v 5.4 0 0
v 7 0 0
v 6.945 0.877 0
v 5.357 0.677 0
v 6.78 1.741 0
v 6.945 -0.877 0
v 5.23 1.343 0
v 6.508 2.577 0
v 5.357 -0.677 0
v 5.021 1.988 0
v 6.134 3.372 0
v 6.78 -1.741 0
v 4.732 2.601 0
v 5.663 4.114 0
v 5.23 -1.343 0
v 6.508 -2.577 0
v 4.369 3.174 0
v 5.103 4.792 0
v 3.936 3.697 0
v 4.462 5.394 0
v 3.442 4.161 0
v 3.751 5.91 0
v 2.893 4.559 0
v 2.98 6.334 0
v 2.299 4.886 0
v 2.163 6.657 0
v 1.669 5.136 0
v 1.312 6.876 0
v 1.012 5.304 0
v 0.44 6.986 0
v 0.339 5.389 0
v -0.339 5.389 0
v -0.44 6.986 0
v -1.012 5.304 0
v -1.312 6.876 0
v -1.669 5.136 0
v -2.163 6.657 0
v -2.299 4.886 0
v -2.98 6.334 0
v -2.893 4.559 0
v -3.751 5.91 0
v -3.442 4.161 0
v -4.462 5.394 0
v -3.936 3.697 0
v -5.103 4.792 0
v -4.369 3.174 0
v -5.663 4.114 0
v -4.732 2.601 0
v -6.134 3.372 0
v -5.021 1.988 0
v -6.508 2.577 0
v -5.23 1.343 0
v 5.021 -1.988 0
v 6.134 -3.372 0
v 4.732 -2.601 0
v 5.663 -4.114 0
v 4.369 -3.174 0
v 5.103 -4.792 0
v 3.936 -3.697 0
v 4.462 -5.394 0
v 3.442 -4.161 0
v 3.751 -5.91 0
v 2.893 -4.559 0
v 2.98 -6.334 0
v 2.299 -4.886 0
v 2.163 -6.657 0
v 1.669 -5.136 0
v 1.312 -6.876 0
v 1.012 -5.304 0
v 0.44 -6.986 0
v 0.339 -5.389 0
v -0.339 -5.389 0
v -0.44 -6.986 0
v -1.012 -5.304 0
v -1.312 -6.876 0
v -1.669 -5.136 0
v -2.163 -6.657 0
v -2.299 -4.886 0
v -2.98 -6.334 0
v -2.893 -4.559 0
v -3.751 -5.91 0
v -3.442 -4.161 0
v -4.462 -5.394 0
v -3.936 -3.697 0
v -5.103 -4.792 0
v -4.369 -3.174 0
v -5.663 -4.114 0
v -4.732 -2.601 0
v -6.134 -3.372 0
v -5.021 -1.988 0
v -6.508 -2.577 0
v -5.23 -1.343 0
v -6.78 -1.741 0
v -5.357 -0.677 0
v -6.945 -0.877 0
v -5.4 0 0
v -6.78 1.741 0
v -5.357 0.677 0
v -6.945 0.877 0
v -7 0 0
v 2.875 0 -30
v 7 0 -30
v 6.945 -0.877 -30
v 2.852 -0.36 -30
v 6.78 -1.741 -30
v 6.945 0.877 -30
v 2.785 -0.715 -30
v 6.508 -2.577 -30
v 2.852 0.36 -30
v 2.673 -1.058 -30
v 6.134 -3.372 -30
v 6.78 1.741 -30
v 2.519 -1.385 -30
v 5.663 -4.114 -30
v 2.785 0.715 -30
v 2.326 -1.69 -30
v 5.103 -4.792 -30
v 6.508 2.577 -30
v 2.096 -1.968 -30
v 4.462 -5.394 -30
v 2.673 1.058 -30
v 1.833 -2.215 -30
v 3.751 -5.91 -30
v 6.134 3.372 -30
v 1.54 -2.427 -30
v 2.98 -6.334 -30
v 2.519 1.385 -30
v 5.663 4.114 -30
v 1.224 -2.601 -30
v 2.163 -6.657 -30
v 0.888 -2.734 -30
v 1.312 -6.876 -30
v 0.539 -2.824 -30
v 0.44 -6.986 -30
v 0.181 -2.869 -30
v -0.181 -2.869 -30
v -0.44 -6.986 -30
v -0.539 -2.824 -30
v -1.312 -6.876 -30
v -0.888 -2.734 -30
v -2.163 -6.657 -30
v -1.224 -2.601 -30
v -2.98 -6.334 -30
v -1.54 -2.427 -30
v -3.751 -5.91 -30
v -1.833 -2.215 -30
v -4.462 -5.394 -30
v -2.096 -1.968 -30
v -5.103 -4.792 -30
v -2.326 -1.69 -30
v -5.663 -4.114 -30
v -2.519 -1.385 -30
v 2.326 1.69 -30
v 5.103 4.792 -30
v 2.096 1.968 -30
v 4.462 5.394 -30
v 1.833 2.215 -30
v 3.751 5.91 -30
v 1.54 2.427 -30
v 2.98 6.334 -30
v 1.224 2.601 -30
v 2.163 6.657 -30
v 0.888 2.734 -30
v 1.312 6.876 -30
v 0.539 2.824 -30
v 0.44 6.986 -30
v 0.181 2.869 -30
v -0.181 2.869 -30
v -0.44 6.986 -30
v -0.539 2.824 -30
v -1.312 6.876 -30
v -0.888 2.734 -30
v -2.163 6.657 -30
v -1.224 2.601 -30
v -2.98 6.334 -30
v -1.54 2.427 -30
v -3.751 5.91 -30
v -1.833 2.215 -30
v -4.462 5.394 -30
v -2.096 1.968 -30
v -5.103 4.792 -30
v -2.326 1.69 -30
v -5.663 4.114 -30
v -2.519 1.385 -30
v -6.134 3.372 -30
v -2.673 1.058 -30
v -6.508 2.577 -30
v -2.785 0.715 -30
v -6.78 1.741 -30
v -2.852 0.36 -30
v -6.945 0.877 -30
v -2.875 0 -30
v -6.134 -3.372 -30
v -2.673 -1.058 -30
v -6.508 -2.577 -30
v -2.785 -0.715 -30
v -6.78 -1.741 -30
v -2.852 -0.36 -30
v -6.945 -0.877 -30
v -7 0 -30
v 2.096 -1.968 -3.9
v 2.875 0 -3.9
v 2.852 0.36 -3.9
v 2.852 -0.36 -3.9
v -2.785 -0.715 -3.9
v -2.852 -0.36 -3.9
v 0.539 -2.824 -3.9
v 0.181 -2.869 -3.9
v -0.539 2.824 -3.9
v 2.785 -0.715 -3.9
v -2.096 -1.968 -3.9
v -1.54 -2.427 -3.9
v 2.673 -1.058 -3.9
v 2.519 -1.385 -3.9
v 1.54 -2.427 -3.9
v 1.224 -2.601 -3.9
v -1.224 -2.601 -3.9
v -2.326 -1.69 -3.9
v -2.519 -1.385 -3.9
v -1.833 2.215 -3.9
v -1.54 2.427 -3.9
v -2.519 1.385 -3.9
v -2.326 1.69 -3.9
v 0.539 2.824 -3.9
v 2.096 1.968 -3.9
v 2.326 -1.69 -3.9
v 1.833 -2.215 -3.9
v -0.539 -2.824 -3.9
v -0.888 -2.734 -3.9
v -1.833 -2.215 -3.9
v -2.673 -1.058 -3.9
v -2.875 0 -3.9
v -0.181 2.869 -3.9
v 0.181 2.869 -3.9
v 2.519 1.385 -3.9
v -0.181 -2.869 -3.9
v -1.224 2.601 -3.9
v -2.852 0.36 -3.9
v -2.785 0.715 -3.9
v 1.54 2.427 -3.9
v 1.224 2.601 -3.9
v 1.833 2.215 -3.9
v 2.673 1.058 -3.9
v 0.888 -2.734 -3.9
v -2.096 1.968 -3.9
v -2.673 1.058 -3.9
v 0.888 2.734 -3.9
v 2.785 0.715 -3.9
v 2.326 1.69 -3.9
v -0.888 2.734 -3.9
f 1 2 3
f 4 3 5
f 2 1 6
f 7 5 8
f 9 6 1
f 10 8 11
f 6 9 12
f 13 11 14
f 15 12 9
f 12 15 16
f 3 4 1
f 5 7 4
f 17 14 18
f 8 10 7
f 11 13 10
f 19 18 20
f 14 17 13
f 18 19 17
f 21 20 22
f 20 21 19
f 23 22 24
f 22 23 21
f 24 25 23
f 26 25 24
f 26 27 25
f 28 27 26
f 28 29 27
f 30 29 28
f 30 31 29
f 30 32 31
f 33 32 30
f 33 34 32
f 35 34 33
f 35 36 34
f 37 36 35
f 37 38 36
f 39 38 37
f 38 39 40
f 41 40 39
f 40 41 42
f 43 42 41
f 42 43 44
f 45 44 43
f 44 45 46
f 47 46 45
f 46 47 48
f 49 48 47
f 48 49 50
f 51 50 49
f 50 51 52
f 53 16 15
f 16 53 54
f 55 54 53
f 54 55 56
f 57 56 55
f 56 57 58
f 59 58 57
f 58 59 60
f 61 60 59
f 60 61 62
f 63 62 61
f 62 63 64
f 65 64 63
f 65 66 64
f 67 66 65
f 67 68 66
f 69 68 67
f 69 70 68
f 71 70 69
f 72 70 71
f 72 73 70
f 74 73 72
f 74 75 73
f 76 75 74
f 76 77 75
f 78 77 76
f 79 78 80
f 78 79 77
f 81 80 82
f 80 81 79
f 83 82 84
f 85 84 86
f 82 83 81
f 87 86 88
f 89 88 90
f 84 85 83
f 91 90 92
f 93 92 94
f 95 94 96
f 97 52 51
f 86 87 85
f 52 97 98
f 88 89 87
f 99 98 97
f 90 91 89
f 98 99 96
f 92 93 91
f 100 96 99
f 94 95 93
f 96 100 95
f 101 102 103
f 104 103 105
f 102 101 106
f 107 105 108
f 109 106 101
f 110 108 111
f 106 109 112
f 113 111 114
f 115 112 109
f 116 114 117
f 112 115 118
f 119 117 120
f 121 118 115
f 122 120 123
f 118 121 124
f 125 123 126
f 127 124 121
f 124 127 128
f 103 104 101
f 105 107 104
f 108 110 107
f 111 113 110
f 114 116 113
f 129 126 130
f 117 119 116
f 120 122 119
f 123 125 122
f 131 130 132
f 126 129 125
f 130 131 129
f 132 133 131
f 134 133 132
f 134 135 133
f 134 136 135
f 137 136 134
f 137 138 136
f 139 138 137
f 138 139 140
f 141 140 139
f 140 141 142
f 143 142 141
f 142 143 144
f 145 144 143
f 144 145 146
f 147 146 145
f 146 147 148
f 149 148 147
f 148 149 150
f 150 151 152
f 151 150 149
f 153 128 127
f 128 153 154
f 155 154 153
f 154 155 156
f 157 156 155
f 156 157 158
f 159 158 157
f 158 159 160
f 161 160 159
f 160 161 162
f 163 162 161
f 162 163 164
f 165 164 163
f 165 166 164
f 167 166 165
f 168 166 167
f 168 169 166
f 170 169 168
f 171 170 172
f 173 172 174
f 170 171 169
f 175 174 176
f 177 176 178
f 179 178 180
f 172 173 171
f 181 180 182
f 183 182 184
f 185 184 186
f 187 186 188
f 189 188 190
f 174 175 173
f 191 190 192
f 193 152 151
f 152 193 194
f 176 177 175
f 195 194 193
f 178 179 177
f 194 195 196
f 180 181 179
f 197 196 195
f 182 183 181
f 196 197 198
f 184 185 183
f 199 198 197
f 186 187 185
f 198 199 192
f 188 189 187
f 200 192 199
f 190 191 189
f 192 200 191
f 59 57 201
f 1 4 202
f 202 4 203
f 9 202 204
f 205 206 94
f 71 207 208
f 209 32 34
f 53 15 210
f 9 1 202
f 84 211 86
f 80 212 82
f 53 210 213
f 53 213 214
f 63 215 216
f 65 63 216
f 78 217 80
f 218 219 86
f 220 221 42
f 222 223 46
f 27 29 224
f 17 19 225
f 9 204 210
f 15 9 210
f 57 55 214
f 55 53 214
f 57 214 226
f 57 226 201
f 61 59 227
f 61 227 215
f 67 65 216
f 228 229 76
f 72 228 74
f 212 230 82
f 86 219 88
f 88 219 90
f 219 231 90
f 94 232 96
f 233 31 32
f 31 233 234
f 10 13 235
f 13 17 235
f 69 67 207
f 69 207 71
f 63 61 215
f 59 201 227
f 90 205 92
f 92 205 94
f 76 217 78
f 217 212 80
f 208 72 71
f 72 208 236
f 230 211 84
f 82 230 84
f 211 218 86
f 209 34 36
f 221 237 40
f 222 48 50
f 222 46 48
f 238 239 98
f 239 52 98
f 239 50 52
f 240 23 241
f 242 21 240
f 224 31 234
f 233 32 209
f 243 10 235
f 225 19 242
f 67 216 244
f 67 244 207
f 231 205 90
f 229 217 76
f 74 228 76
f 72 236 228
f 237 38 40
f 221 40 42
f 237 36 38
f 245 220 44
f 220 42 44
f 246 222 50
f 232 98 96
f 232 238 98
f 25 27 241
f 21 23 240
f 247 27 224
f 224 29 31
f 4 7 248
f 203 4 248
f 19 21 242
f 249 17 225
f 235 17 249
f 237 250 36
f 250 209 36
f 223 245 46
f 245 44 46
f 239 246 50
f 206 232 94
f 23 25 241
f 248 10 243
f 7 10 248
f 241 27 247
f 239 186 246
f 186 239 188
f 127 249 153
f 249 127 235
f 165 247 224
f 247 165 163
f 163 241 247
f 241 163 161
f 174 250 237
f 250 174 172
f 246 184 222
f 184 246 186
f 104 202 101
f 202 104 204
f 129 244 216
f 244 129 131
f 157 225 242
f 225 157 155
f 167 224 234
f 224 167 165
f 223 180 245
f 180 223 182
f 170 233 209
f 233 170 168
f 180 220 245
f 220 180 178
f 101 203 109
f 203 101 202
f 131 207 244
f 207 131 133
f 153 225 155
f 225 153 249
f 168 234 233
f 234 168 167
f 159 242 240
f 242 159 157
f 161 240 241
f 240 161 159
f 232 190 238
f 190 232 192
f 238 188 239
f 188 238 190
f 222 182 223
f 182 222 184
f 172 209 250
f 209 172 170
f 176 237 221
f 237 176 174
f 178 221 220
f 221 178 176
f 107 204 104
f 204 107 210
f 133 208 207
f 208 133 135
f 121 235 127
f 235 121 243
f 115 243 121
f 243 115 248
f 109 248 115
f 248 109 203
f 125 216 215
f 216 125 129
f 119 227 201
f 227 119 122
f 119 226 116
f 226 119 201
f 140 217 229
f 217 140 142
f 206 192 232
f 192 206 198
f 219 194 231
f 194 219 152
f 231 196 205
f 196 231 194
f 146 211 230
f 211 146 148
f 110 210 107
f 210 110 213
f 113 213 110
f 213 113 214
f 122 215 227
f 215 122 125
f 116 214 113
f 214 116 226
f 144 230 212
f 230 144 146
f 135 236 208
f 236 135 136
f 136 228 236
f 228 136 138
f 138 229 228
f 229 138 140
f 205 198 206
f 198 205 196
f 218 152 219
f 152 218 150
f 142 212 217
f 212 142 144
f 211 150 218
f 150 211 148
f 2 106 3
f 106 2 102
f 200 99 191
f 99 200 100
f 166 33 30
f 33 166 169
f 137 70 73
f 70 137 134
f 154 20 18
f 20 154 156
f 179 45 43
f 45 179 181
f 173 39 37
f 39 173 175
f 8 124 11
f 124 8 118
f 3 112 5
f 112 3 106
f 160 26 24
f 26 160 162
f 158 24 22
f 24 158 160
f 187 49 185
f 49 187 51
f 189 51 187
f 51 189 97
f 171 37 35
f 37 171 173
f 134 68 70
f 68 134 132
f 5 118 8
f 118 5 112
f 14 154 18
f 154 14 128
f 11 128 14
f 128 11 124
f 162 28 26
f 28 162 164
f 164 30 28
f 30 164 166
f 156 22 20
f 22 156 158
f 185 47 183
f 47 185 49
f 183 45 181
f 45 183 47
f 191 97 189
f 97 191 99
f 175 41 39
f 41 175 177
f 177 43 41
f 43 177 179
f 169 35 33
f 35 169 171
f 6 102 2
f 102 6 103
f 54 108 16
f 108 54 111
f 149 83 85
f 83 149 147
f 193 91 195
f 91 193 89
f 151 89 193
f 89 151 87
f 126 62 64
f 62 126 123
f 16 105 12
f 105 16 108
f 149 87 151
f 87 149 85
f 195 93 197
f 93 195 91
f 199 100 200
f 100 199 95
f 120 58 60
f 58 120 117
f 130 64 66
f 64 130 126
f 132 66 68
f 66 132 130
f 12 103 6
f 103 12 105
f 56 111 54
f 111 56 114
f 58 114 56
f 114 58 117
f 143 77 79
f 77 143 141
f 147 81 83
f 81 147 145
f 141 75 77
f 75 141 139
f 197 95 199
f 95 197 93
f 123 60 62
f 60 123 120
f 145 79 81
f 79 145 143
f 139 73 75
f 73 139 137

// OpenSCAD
$fn = 50;


difference() {
	union() {
		translate(v = [0, 0, -30.0000000000]) {
			cylinder(h = 30, r = 7.0000000000);
		}
	}
	union() {
		translate(v = [0, 0, 0]) {
			rotate(a = [0, 0, 0]) {
				difference() {
					union() {
						#translate(v = [0, 0, -30.0000000000]) {
							cylinder(h = 30, r = 2.6000000000);
						}
						#translate(v = [0, 0, -3.9000000000]) {
							cylinder(h = 3.9000000000, r1 = 2.8750000000, r2 = 5.4000000000);
						}
						#translate(v = [0, 0, -30.0000000000]) {
							cylinder(h = 30, r = 2.8750000000);
						}
						#translate(v = [0, 0, -30.0000000000]) {
							cylinder(h = 30, r = 2.6000000000);
						}
					}
					union();
				}
			}
		}
	}
}
